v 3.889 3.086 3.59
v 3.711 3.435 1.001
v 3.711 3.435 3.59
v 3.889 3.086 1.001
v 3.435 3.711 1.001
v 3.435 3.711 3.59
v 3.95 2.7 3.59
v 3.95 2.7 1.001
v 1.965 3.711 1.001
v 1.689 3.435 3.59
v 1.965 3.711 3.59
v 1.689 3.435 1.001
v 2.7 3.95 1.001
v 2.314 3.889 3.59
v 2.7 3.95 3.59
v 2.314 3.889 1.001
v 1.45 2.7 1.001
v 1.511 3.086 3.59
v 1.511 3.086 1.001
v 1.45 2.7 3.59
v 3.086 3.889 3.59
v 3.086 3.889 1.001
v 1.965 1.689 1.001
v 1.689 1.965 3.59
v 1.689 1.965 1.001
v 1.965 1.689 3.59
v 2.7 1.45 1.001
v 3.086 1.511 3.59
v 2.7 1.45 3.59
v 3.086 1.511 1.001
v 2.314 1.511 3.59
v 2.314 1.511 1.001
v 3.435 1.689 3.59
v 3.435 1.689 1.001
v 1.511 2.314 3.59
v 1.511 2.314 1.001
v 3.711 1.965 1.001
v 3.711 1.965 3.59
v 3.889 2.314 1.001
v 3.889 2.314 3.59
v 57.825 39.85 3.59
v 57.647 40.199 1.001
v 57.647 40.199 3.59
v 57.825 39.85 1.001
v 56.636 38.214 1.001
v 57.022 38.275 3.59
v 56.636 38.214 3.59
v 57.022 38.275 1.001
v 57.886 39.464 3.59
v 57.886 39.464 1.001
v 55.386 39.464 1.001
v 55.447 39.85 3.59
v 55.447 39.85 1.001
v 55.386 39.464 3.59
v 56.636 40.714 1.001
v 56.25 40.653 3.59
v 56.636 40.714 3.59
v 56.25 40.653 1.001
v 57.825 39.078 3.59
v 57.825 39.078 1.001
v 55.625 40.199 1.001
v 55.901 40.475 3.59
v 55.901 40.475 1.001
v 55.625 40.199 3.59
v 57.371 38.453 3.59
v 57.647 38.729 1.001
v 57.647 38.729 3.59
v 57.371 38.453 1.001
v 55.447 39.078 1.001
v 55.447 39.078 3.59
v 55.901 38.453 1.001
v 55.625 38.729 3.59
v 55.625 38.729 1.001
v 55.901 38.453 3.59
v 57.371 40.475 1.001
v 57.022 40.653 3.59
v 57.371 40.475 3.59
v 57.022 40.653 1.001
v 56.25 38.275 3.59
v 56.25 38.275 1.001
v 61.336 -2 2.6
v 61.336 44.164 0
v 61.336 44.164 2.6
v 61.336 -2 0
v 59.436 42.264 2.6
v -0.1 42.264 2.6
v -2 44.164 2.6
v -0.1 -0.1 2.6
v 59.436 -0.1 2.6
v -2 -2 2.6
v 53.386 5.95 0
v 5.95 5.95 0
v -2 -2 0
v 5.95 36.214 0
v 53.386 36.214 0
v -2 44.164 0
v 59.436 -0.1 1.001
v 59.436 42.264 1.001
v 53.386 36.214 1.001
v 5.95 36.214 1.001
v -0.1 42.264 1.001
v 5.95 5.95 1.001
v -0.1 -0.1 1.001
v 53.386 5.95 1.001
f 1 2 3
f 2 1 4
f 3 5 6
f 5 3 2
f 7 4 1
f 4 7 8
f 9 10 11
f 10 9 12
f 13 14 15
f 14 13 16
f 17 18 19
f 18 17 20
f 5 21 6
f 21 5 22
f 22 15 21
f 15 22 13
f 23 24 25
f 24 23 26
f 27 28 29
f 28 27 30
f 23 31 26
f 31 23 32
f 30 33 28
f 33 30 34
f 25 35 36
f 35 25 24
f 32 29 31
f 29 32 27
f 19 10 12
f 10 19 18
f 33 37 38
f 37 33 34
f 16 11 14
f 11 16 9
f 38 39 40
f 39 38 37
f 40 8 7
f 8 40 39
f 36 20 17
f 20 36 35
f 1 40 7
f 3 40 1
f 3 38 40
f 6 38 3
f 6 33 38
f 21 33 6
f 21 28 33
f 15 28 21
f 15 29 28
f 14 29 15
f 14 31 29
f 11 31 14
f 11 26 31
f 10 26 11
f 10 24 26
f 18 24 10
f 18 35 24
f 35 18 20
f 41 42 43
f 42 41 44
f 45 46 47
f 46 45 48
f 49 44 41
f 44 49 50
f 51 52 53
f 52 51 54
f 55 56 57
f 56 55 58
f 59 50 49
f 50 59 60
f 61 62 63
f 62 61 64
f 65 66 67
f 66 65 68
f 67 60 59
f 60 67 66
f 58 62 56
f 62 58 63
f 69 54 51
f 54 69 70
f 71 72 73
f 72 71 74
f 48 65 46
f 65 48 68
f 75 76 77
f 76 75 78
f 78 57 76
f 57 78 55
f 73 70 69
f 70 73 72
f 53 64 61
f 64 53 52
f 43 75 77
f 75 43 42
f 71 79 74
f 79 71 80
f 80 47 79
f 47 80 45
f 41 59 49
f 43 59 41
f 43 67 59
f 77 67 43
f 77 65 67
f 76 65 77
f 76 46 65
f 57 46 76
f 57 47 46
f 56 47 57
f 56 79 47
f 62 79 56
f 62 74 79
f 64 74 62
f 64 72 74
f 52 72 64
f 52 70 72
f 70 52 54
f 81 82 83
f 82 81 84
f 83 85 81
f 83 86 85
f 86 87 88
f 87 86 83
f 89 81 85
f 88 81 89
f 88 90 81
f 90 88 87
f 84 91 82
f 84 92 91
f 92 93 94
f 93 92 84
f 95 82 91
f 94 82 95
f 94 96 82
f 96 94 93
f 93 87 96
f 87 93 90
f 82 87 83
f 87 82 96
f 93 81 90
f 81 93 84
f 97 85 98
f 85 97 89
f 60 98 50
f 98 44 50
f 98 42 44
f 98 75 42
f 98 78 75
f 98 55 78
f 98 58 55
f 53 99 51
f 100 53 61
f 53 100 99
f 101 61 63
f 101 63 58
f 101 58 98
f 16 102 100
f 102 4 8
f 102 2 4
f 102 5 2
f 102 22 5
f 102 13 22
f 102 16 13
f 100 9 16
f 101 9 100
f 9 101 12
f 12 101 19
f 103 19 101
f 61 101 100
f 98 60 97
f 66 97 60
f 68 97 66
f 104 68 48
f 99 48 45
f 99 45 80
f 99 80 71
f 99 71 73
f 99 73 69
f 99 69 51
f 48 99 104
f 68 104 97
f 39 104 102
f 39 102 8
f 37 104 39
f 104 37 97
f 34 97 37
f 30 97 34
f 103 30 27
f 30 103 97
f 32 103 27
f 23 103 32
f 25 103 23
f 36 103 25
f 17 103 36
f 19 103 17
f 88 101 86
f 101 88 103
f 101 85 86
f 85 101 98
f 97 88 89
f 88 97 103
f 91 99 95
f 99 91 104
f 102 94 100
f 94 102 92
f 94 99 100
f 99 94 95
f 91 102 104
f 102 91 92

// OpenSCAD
// Copyright (c) 2026 Chris Lee and contributors.
// Licensed under the MIT license. See LICENSE file in the project root for details.

// This is a fixture for holding a PCB and stencil in alignment
board_thickness = 1.6;
pad_space = 2.54;
board_dims = [23.4*pad_space-0.1, 16.6*pad_space, board_thickness];
outside_border = 2;
base_thickness = 1;

outside_dims = board_dims + [2*outside_border, 2*outside_border, base_thickness];

if (false) {
  translate([board_dims[0]/2, board_dims[1]/2, board_dims[2]/2 + base_thickness]) color("white")
    import(file="Plant1337.stl", convexity=3);
 }

dscrew = 2.5;
screw_offset = dscrew + 0.2;

translate([-outside_border, -outside_border, 0]) {
  difference() {
    union() {
      cube(outside_dims);
    }
    translate([outside_border-0.1, outside_border-0.1, base_thickness+0.001]) {
      cube(board_dims + [0.2, 0.2, 0]);
    }
    inside_offset = outside_border + screw_offset + dscrew/2 + outside_border;
    translate([inside_offset, inside_offset, -0.01]) {
      cube([outside_dims[0] - 2 * inside_offset, outside_dims[1] - 2 * inside_offset,
	    base_thickness+1]);
    }
  }
  translate([outside_border, outside_border, base_thickness-0.01]) {
    $fn = 20;
    translate([screw_offset, screw_offset, 0])
      cylinder(board_thickness+1, dscrew/2, dscrew/2);
    translate([board_dims[0] - screw_offset, board_dims[1] - screw_offset, 0])
      cylinder(board_thickness+1, dscrew/2, dscrew/2);
  }
}
